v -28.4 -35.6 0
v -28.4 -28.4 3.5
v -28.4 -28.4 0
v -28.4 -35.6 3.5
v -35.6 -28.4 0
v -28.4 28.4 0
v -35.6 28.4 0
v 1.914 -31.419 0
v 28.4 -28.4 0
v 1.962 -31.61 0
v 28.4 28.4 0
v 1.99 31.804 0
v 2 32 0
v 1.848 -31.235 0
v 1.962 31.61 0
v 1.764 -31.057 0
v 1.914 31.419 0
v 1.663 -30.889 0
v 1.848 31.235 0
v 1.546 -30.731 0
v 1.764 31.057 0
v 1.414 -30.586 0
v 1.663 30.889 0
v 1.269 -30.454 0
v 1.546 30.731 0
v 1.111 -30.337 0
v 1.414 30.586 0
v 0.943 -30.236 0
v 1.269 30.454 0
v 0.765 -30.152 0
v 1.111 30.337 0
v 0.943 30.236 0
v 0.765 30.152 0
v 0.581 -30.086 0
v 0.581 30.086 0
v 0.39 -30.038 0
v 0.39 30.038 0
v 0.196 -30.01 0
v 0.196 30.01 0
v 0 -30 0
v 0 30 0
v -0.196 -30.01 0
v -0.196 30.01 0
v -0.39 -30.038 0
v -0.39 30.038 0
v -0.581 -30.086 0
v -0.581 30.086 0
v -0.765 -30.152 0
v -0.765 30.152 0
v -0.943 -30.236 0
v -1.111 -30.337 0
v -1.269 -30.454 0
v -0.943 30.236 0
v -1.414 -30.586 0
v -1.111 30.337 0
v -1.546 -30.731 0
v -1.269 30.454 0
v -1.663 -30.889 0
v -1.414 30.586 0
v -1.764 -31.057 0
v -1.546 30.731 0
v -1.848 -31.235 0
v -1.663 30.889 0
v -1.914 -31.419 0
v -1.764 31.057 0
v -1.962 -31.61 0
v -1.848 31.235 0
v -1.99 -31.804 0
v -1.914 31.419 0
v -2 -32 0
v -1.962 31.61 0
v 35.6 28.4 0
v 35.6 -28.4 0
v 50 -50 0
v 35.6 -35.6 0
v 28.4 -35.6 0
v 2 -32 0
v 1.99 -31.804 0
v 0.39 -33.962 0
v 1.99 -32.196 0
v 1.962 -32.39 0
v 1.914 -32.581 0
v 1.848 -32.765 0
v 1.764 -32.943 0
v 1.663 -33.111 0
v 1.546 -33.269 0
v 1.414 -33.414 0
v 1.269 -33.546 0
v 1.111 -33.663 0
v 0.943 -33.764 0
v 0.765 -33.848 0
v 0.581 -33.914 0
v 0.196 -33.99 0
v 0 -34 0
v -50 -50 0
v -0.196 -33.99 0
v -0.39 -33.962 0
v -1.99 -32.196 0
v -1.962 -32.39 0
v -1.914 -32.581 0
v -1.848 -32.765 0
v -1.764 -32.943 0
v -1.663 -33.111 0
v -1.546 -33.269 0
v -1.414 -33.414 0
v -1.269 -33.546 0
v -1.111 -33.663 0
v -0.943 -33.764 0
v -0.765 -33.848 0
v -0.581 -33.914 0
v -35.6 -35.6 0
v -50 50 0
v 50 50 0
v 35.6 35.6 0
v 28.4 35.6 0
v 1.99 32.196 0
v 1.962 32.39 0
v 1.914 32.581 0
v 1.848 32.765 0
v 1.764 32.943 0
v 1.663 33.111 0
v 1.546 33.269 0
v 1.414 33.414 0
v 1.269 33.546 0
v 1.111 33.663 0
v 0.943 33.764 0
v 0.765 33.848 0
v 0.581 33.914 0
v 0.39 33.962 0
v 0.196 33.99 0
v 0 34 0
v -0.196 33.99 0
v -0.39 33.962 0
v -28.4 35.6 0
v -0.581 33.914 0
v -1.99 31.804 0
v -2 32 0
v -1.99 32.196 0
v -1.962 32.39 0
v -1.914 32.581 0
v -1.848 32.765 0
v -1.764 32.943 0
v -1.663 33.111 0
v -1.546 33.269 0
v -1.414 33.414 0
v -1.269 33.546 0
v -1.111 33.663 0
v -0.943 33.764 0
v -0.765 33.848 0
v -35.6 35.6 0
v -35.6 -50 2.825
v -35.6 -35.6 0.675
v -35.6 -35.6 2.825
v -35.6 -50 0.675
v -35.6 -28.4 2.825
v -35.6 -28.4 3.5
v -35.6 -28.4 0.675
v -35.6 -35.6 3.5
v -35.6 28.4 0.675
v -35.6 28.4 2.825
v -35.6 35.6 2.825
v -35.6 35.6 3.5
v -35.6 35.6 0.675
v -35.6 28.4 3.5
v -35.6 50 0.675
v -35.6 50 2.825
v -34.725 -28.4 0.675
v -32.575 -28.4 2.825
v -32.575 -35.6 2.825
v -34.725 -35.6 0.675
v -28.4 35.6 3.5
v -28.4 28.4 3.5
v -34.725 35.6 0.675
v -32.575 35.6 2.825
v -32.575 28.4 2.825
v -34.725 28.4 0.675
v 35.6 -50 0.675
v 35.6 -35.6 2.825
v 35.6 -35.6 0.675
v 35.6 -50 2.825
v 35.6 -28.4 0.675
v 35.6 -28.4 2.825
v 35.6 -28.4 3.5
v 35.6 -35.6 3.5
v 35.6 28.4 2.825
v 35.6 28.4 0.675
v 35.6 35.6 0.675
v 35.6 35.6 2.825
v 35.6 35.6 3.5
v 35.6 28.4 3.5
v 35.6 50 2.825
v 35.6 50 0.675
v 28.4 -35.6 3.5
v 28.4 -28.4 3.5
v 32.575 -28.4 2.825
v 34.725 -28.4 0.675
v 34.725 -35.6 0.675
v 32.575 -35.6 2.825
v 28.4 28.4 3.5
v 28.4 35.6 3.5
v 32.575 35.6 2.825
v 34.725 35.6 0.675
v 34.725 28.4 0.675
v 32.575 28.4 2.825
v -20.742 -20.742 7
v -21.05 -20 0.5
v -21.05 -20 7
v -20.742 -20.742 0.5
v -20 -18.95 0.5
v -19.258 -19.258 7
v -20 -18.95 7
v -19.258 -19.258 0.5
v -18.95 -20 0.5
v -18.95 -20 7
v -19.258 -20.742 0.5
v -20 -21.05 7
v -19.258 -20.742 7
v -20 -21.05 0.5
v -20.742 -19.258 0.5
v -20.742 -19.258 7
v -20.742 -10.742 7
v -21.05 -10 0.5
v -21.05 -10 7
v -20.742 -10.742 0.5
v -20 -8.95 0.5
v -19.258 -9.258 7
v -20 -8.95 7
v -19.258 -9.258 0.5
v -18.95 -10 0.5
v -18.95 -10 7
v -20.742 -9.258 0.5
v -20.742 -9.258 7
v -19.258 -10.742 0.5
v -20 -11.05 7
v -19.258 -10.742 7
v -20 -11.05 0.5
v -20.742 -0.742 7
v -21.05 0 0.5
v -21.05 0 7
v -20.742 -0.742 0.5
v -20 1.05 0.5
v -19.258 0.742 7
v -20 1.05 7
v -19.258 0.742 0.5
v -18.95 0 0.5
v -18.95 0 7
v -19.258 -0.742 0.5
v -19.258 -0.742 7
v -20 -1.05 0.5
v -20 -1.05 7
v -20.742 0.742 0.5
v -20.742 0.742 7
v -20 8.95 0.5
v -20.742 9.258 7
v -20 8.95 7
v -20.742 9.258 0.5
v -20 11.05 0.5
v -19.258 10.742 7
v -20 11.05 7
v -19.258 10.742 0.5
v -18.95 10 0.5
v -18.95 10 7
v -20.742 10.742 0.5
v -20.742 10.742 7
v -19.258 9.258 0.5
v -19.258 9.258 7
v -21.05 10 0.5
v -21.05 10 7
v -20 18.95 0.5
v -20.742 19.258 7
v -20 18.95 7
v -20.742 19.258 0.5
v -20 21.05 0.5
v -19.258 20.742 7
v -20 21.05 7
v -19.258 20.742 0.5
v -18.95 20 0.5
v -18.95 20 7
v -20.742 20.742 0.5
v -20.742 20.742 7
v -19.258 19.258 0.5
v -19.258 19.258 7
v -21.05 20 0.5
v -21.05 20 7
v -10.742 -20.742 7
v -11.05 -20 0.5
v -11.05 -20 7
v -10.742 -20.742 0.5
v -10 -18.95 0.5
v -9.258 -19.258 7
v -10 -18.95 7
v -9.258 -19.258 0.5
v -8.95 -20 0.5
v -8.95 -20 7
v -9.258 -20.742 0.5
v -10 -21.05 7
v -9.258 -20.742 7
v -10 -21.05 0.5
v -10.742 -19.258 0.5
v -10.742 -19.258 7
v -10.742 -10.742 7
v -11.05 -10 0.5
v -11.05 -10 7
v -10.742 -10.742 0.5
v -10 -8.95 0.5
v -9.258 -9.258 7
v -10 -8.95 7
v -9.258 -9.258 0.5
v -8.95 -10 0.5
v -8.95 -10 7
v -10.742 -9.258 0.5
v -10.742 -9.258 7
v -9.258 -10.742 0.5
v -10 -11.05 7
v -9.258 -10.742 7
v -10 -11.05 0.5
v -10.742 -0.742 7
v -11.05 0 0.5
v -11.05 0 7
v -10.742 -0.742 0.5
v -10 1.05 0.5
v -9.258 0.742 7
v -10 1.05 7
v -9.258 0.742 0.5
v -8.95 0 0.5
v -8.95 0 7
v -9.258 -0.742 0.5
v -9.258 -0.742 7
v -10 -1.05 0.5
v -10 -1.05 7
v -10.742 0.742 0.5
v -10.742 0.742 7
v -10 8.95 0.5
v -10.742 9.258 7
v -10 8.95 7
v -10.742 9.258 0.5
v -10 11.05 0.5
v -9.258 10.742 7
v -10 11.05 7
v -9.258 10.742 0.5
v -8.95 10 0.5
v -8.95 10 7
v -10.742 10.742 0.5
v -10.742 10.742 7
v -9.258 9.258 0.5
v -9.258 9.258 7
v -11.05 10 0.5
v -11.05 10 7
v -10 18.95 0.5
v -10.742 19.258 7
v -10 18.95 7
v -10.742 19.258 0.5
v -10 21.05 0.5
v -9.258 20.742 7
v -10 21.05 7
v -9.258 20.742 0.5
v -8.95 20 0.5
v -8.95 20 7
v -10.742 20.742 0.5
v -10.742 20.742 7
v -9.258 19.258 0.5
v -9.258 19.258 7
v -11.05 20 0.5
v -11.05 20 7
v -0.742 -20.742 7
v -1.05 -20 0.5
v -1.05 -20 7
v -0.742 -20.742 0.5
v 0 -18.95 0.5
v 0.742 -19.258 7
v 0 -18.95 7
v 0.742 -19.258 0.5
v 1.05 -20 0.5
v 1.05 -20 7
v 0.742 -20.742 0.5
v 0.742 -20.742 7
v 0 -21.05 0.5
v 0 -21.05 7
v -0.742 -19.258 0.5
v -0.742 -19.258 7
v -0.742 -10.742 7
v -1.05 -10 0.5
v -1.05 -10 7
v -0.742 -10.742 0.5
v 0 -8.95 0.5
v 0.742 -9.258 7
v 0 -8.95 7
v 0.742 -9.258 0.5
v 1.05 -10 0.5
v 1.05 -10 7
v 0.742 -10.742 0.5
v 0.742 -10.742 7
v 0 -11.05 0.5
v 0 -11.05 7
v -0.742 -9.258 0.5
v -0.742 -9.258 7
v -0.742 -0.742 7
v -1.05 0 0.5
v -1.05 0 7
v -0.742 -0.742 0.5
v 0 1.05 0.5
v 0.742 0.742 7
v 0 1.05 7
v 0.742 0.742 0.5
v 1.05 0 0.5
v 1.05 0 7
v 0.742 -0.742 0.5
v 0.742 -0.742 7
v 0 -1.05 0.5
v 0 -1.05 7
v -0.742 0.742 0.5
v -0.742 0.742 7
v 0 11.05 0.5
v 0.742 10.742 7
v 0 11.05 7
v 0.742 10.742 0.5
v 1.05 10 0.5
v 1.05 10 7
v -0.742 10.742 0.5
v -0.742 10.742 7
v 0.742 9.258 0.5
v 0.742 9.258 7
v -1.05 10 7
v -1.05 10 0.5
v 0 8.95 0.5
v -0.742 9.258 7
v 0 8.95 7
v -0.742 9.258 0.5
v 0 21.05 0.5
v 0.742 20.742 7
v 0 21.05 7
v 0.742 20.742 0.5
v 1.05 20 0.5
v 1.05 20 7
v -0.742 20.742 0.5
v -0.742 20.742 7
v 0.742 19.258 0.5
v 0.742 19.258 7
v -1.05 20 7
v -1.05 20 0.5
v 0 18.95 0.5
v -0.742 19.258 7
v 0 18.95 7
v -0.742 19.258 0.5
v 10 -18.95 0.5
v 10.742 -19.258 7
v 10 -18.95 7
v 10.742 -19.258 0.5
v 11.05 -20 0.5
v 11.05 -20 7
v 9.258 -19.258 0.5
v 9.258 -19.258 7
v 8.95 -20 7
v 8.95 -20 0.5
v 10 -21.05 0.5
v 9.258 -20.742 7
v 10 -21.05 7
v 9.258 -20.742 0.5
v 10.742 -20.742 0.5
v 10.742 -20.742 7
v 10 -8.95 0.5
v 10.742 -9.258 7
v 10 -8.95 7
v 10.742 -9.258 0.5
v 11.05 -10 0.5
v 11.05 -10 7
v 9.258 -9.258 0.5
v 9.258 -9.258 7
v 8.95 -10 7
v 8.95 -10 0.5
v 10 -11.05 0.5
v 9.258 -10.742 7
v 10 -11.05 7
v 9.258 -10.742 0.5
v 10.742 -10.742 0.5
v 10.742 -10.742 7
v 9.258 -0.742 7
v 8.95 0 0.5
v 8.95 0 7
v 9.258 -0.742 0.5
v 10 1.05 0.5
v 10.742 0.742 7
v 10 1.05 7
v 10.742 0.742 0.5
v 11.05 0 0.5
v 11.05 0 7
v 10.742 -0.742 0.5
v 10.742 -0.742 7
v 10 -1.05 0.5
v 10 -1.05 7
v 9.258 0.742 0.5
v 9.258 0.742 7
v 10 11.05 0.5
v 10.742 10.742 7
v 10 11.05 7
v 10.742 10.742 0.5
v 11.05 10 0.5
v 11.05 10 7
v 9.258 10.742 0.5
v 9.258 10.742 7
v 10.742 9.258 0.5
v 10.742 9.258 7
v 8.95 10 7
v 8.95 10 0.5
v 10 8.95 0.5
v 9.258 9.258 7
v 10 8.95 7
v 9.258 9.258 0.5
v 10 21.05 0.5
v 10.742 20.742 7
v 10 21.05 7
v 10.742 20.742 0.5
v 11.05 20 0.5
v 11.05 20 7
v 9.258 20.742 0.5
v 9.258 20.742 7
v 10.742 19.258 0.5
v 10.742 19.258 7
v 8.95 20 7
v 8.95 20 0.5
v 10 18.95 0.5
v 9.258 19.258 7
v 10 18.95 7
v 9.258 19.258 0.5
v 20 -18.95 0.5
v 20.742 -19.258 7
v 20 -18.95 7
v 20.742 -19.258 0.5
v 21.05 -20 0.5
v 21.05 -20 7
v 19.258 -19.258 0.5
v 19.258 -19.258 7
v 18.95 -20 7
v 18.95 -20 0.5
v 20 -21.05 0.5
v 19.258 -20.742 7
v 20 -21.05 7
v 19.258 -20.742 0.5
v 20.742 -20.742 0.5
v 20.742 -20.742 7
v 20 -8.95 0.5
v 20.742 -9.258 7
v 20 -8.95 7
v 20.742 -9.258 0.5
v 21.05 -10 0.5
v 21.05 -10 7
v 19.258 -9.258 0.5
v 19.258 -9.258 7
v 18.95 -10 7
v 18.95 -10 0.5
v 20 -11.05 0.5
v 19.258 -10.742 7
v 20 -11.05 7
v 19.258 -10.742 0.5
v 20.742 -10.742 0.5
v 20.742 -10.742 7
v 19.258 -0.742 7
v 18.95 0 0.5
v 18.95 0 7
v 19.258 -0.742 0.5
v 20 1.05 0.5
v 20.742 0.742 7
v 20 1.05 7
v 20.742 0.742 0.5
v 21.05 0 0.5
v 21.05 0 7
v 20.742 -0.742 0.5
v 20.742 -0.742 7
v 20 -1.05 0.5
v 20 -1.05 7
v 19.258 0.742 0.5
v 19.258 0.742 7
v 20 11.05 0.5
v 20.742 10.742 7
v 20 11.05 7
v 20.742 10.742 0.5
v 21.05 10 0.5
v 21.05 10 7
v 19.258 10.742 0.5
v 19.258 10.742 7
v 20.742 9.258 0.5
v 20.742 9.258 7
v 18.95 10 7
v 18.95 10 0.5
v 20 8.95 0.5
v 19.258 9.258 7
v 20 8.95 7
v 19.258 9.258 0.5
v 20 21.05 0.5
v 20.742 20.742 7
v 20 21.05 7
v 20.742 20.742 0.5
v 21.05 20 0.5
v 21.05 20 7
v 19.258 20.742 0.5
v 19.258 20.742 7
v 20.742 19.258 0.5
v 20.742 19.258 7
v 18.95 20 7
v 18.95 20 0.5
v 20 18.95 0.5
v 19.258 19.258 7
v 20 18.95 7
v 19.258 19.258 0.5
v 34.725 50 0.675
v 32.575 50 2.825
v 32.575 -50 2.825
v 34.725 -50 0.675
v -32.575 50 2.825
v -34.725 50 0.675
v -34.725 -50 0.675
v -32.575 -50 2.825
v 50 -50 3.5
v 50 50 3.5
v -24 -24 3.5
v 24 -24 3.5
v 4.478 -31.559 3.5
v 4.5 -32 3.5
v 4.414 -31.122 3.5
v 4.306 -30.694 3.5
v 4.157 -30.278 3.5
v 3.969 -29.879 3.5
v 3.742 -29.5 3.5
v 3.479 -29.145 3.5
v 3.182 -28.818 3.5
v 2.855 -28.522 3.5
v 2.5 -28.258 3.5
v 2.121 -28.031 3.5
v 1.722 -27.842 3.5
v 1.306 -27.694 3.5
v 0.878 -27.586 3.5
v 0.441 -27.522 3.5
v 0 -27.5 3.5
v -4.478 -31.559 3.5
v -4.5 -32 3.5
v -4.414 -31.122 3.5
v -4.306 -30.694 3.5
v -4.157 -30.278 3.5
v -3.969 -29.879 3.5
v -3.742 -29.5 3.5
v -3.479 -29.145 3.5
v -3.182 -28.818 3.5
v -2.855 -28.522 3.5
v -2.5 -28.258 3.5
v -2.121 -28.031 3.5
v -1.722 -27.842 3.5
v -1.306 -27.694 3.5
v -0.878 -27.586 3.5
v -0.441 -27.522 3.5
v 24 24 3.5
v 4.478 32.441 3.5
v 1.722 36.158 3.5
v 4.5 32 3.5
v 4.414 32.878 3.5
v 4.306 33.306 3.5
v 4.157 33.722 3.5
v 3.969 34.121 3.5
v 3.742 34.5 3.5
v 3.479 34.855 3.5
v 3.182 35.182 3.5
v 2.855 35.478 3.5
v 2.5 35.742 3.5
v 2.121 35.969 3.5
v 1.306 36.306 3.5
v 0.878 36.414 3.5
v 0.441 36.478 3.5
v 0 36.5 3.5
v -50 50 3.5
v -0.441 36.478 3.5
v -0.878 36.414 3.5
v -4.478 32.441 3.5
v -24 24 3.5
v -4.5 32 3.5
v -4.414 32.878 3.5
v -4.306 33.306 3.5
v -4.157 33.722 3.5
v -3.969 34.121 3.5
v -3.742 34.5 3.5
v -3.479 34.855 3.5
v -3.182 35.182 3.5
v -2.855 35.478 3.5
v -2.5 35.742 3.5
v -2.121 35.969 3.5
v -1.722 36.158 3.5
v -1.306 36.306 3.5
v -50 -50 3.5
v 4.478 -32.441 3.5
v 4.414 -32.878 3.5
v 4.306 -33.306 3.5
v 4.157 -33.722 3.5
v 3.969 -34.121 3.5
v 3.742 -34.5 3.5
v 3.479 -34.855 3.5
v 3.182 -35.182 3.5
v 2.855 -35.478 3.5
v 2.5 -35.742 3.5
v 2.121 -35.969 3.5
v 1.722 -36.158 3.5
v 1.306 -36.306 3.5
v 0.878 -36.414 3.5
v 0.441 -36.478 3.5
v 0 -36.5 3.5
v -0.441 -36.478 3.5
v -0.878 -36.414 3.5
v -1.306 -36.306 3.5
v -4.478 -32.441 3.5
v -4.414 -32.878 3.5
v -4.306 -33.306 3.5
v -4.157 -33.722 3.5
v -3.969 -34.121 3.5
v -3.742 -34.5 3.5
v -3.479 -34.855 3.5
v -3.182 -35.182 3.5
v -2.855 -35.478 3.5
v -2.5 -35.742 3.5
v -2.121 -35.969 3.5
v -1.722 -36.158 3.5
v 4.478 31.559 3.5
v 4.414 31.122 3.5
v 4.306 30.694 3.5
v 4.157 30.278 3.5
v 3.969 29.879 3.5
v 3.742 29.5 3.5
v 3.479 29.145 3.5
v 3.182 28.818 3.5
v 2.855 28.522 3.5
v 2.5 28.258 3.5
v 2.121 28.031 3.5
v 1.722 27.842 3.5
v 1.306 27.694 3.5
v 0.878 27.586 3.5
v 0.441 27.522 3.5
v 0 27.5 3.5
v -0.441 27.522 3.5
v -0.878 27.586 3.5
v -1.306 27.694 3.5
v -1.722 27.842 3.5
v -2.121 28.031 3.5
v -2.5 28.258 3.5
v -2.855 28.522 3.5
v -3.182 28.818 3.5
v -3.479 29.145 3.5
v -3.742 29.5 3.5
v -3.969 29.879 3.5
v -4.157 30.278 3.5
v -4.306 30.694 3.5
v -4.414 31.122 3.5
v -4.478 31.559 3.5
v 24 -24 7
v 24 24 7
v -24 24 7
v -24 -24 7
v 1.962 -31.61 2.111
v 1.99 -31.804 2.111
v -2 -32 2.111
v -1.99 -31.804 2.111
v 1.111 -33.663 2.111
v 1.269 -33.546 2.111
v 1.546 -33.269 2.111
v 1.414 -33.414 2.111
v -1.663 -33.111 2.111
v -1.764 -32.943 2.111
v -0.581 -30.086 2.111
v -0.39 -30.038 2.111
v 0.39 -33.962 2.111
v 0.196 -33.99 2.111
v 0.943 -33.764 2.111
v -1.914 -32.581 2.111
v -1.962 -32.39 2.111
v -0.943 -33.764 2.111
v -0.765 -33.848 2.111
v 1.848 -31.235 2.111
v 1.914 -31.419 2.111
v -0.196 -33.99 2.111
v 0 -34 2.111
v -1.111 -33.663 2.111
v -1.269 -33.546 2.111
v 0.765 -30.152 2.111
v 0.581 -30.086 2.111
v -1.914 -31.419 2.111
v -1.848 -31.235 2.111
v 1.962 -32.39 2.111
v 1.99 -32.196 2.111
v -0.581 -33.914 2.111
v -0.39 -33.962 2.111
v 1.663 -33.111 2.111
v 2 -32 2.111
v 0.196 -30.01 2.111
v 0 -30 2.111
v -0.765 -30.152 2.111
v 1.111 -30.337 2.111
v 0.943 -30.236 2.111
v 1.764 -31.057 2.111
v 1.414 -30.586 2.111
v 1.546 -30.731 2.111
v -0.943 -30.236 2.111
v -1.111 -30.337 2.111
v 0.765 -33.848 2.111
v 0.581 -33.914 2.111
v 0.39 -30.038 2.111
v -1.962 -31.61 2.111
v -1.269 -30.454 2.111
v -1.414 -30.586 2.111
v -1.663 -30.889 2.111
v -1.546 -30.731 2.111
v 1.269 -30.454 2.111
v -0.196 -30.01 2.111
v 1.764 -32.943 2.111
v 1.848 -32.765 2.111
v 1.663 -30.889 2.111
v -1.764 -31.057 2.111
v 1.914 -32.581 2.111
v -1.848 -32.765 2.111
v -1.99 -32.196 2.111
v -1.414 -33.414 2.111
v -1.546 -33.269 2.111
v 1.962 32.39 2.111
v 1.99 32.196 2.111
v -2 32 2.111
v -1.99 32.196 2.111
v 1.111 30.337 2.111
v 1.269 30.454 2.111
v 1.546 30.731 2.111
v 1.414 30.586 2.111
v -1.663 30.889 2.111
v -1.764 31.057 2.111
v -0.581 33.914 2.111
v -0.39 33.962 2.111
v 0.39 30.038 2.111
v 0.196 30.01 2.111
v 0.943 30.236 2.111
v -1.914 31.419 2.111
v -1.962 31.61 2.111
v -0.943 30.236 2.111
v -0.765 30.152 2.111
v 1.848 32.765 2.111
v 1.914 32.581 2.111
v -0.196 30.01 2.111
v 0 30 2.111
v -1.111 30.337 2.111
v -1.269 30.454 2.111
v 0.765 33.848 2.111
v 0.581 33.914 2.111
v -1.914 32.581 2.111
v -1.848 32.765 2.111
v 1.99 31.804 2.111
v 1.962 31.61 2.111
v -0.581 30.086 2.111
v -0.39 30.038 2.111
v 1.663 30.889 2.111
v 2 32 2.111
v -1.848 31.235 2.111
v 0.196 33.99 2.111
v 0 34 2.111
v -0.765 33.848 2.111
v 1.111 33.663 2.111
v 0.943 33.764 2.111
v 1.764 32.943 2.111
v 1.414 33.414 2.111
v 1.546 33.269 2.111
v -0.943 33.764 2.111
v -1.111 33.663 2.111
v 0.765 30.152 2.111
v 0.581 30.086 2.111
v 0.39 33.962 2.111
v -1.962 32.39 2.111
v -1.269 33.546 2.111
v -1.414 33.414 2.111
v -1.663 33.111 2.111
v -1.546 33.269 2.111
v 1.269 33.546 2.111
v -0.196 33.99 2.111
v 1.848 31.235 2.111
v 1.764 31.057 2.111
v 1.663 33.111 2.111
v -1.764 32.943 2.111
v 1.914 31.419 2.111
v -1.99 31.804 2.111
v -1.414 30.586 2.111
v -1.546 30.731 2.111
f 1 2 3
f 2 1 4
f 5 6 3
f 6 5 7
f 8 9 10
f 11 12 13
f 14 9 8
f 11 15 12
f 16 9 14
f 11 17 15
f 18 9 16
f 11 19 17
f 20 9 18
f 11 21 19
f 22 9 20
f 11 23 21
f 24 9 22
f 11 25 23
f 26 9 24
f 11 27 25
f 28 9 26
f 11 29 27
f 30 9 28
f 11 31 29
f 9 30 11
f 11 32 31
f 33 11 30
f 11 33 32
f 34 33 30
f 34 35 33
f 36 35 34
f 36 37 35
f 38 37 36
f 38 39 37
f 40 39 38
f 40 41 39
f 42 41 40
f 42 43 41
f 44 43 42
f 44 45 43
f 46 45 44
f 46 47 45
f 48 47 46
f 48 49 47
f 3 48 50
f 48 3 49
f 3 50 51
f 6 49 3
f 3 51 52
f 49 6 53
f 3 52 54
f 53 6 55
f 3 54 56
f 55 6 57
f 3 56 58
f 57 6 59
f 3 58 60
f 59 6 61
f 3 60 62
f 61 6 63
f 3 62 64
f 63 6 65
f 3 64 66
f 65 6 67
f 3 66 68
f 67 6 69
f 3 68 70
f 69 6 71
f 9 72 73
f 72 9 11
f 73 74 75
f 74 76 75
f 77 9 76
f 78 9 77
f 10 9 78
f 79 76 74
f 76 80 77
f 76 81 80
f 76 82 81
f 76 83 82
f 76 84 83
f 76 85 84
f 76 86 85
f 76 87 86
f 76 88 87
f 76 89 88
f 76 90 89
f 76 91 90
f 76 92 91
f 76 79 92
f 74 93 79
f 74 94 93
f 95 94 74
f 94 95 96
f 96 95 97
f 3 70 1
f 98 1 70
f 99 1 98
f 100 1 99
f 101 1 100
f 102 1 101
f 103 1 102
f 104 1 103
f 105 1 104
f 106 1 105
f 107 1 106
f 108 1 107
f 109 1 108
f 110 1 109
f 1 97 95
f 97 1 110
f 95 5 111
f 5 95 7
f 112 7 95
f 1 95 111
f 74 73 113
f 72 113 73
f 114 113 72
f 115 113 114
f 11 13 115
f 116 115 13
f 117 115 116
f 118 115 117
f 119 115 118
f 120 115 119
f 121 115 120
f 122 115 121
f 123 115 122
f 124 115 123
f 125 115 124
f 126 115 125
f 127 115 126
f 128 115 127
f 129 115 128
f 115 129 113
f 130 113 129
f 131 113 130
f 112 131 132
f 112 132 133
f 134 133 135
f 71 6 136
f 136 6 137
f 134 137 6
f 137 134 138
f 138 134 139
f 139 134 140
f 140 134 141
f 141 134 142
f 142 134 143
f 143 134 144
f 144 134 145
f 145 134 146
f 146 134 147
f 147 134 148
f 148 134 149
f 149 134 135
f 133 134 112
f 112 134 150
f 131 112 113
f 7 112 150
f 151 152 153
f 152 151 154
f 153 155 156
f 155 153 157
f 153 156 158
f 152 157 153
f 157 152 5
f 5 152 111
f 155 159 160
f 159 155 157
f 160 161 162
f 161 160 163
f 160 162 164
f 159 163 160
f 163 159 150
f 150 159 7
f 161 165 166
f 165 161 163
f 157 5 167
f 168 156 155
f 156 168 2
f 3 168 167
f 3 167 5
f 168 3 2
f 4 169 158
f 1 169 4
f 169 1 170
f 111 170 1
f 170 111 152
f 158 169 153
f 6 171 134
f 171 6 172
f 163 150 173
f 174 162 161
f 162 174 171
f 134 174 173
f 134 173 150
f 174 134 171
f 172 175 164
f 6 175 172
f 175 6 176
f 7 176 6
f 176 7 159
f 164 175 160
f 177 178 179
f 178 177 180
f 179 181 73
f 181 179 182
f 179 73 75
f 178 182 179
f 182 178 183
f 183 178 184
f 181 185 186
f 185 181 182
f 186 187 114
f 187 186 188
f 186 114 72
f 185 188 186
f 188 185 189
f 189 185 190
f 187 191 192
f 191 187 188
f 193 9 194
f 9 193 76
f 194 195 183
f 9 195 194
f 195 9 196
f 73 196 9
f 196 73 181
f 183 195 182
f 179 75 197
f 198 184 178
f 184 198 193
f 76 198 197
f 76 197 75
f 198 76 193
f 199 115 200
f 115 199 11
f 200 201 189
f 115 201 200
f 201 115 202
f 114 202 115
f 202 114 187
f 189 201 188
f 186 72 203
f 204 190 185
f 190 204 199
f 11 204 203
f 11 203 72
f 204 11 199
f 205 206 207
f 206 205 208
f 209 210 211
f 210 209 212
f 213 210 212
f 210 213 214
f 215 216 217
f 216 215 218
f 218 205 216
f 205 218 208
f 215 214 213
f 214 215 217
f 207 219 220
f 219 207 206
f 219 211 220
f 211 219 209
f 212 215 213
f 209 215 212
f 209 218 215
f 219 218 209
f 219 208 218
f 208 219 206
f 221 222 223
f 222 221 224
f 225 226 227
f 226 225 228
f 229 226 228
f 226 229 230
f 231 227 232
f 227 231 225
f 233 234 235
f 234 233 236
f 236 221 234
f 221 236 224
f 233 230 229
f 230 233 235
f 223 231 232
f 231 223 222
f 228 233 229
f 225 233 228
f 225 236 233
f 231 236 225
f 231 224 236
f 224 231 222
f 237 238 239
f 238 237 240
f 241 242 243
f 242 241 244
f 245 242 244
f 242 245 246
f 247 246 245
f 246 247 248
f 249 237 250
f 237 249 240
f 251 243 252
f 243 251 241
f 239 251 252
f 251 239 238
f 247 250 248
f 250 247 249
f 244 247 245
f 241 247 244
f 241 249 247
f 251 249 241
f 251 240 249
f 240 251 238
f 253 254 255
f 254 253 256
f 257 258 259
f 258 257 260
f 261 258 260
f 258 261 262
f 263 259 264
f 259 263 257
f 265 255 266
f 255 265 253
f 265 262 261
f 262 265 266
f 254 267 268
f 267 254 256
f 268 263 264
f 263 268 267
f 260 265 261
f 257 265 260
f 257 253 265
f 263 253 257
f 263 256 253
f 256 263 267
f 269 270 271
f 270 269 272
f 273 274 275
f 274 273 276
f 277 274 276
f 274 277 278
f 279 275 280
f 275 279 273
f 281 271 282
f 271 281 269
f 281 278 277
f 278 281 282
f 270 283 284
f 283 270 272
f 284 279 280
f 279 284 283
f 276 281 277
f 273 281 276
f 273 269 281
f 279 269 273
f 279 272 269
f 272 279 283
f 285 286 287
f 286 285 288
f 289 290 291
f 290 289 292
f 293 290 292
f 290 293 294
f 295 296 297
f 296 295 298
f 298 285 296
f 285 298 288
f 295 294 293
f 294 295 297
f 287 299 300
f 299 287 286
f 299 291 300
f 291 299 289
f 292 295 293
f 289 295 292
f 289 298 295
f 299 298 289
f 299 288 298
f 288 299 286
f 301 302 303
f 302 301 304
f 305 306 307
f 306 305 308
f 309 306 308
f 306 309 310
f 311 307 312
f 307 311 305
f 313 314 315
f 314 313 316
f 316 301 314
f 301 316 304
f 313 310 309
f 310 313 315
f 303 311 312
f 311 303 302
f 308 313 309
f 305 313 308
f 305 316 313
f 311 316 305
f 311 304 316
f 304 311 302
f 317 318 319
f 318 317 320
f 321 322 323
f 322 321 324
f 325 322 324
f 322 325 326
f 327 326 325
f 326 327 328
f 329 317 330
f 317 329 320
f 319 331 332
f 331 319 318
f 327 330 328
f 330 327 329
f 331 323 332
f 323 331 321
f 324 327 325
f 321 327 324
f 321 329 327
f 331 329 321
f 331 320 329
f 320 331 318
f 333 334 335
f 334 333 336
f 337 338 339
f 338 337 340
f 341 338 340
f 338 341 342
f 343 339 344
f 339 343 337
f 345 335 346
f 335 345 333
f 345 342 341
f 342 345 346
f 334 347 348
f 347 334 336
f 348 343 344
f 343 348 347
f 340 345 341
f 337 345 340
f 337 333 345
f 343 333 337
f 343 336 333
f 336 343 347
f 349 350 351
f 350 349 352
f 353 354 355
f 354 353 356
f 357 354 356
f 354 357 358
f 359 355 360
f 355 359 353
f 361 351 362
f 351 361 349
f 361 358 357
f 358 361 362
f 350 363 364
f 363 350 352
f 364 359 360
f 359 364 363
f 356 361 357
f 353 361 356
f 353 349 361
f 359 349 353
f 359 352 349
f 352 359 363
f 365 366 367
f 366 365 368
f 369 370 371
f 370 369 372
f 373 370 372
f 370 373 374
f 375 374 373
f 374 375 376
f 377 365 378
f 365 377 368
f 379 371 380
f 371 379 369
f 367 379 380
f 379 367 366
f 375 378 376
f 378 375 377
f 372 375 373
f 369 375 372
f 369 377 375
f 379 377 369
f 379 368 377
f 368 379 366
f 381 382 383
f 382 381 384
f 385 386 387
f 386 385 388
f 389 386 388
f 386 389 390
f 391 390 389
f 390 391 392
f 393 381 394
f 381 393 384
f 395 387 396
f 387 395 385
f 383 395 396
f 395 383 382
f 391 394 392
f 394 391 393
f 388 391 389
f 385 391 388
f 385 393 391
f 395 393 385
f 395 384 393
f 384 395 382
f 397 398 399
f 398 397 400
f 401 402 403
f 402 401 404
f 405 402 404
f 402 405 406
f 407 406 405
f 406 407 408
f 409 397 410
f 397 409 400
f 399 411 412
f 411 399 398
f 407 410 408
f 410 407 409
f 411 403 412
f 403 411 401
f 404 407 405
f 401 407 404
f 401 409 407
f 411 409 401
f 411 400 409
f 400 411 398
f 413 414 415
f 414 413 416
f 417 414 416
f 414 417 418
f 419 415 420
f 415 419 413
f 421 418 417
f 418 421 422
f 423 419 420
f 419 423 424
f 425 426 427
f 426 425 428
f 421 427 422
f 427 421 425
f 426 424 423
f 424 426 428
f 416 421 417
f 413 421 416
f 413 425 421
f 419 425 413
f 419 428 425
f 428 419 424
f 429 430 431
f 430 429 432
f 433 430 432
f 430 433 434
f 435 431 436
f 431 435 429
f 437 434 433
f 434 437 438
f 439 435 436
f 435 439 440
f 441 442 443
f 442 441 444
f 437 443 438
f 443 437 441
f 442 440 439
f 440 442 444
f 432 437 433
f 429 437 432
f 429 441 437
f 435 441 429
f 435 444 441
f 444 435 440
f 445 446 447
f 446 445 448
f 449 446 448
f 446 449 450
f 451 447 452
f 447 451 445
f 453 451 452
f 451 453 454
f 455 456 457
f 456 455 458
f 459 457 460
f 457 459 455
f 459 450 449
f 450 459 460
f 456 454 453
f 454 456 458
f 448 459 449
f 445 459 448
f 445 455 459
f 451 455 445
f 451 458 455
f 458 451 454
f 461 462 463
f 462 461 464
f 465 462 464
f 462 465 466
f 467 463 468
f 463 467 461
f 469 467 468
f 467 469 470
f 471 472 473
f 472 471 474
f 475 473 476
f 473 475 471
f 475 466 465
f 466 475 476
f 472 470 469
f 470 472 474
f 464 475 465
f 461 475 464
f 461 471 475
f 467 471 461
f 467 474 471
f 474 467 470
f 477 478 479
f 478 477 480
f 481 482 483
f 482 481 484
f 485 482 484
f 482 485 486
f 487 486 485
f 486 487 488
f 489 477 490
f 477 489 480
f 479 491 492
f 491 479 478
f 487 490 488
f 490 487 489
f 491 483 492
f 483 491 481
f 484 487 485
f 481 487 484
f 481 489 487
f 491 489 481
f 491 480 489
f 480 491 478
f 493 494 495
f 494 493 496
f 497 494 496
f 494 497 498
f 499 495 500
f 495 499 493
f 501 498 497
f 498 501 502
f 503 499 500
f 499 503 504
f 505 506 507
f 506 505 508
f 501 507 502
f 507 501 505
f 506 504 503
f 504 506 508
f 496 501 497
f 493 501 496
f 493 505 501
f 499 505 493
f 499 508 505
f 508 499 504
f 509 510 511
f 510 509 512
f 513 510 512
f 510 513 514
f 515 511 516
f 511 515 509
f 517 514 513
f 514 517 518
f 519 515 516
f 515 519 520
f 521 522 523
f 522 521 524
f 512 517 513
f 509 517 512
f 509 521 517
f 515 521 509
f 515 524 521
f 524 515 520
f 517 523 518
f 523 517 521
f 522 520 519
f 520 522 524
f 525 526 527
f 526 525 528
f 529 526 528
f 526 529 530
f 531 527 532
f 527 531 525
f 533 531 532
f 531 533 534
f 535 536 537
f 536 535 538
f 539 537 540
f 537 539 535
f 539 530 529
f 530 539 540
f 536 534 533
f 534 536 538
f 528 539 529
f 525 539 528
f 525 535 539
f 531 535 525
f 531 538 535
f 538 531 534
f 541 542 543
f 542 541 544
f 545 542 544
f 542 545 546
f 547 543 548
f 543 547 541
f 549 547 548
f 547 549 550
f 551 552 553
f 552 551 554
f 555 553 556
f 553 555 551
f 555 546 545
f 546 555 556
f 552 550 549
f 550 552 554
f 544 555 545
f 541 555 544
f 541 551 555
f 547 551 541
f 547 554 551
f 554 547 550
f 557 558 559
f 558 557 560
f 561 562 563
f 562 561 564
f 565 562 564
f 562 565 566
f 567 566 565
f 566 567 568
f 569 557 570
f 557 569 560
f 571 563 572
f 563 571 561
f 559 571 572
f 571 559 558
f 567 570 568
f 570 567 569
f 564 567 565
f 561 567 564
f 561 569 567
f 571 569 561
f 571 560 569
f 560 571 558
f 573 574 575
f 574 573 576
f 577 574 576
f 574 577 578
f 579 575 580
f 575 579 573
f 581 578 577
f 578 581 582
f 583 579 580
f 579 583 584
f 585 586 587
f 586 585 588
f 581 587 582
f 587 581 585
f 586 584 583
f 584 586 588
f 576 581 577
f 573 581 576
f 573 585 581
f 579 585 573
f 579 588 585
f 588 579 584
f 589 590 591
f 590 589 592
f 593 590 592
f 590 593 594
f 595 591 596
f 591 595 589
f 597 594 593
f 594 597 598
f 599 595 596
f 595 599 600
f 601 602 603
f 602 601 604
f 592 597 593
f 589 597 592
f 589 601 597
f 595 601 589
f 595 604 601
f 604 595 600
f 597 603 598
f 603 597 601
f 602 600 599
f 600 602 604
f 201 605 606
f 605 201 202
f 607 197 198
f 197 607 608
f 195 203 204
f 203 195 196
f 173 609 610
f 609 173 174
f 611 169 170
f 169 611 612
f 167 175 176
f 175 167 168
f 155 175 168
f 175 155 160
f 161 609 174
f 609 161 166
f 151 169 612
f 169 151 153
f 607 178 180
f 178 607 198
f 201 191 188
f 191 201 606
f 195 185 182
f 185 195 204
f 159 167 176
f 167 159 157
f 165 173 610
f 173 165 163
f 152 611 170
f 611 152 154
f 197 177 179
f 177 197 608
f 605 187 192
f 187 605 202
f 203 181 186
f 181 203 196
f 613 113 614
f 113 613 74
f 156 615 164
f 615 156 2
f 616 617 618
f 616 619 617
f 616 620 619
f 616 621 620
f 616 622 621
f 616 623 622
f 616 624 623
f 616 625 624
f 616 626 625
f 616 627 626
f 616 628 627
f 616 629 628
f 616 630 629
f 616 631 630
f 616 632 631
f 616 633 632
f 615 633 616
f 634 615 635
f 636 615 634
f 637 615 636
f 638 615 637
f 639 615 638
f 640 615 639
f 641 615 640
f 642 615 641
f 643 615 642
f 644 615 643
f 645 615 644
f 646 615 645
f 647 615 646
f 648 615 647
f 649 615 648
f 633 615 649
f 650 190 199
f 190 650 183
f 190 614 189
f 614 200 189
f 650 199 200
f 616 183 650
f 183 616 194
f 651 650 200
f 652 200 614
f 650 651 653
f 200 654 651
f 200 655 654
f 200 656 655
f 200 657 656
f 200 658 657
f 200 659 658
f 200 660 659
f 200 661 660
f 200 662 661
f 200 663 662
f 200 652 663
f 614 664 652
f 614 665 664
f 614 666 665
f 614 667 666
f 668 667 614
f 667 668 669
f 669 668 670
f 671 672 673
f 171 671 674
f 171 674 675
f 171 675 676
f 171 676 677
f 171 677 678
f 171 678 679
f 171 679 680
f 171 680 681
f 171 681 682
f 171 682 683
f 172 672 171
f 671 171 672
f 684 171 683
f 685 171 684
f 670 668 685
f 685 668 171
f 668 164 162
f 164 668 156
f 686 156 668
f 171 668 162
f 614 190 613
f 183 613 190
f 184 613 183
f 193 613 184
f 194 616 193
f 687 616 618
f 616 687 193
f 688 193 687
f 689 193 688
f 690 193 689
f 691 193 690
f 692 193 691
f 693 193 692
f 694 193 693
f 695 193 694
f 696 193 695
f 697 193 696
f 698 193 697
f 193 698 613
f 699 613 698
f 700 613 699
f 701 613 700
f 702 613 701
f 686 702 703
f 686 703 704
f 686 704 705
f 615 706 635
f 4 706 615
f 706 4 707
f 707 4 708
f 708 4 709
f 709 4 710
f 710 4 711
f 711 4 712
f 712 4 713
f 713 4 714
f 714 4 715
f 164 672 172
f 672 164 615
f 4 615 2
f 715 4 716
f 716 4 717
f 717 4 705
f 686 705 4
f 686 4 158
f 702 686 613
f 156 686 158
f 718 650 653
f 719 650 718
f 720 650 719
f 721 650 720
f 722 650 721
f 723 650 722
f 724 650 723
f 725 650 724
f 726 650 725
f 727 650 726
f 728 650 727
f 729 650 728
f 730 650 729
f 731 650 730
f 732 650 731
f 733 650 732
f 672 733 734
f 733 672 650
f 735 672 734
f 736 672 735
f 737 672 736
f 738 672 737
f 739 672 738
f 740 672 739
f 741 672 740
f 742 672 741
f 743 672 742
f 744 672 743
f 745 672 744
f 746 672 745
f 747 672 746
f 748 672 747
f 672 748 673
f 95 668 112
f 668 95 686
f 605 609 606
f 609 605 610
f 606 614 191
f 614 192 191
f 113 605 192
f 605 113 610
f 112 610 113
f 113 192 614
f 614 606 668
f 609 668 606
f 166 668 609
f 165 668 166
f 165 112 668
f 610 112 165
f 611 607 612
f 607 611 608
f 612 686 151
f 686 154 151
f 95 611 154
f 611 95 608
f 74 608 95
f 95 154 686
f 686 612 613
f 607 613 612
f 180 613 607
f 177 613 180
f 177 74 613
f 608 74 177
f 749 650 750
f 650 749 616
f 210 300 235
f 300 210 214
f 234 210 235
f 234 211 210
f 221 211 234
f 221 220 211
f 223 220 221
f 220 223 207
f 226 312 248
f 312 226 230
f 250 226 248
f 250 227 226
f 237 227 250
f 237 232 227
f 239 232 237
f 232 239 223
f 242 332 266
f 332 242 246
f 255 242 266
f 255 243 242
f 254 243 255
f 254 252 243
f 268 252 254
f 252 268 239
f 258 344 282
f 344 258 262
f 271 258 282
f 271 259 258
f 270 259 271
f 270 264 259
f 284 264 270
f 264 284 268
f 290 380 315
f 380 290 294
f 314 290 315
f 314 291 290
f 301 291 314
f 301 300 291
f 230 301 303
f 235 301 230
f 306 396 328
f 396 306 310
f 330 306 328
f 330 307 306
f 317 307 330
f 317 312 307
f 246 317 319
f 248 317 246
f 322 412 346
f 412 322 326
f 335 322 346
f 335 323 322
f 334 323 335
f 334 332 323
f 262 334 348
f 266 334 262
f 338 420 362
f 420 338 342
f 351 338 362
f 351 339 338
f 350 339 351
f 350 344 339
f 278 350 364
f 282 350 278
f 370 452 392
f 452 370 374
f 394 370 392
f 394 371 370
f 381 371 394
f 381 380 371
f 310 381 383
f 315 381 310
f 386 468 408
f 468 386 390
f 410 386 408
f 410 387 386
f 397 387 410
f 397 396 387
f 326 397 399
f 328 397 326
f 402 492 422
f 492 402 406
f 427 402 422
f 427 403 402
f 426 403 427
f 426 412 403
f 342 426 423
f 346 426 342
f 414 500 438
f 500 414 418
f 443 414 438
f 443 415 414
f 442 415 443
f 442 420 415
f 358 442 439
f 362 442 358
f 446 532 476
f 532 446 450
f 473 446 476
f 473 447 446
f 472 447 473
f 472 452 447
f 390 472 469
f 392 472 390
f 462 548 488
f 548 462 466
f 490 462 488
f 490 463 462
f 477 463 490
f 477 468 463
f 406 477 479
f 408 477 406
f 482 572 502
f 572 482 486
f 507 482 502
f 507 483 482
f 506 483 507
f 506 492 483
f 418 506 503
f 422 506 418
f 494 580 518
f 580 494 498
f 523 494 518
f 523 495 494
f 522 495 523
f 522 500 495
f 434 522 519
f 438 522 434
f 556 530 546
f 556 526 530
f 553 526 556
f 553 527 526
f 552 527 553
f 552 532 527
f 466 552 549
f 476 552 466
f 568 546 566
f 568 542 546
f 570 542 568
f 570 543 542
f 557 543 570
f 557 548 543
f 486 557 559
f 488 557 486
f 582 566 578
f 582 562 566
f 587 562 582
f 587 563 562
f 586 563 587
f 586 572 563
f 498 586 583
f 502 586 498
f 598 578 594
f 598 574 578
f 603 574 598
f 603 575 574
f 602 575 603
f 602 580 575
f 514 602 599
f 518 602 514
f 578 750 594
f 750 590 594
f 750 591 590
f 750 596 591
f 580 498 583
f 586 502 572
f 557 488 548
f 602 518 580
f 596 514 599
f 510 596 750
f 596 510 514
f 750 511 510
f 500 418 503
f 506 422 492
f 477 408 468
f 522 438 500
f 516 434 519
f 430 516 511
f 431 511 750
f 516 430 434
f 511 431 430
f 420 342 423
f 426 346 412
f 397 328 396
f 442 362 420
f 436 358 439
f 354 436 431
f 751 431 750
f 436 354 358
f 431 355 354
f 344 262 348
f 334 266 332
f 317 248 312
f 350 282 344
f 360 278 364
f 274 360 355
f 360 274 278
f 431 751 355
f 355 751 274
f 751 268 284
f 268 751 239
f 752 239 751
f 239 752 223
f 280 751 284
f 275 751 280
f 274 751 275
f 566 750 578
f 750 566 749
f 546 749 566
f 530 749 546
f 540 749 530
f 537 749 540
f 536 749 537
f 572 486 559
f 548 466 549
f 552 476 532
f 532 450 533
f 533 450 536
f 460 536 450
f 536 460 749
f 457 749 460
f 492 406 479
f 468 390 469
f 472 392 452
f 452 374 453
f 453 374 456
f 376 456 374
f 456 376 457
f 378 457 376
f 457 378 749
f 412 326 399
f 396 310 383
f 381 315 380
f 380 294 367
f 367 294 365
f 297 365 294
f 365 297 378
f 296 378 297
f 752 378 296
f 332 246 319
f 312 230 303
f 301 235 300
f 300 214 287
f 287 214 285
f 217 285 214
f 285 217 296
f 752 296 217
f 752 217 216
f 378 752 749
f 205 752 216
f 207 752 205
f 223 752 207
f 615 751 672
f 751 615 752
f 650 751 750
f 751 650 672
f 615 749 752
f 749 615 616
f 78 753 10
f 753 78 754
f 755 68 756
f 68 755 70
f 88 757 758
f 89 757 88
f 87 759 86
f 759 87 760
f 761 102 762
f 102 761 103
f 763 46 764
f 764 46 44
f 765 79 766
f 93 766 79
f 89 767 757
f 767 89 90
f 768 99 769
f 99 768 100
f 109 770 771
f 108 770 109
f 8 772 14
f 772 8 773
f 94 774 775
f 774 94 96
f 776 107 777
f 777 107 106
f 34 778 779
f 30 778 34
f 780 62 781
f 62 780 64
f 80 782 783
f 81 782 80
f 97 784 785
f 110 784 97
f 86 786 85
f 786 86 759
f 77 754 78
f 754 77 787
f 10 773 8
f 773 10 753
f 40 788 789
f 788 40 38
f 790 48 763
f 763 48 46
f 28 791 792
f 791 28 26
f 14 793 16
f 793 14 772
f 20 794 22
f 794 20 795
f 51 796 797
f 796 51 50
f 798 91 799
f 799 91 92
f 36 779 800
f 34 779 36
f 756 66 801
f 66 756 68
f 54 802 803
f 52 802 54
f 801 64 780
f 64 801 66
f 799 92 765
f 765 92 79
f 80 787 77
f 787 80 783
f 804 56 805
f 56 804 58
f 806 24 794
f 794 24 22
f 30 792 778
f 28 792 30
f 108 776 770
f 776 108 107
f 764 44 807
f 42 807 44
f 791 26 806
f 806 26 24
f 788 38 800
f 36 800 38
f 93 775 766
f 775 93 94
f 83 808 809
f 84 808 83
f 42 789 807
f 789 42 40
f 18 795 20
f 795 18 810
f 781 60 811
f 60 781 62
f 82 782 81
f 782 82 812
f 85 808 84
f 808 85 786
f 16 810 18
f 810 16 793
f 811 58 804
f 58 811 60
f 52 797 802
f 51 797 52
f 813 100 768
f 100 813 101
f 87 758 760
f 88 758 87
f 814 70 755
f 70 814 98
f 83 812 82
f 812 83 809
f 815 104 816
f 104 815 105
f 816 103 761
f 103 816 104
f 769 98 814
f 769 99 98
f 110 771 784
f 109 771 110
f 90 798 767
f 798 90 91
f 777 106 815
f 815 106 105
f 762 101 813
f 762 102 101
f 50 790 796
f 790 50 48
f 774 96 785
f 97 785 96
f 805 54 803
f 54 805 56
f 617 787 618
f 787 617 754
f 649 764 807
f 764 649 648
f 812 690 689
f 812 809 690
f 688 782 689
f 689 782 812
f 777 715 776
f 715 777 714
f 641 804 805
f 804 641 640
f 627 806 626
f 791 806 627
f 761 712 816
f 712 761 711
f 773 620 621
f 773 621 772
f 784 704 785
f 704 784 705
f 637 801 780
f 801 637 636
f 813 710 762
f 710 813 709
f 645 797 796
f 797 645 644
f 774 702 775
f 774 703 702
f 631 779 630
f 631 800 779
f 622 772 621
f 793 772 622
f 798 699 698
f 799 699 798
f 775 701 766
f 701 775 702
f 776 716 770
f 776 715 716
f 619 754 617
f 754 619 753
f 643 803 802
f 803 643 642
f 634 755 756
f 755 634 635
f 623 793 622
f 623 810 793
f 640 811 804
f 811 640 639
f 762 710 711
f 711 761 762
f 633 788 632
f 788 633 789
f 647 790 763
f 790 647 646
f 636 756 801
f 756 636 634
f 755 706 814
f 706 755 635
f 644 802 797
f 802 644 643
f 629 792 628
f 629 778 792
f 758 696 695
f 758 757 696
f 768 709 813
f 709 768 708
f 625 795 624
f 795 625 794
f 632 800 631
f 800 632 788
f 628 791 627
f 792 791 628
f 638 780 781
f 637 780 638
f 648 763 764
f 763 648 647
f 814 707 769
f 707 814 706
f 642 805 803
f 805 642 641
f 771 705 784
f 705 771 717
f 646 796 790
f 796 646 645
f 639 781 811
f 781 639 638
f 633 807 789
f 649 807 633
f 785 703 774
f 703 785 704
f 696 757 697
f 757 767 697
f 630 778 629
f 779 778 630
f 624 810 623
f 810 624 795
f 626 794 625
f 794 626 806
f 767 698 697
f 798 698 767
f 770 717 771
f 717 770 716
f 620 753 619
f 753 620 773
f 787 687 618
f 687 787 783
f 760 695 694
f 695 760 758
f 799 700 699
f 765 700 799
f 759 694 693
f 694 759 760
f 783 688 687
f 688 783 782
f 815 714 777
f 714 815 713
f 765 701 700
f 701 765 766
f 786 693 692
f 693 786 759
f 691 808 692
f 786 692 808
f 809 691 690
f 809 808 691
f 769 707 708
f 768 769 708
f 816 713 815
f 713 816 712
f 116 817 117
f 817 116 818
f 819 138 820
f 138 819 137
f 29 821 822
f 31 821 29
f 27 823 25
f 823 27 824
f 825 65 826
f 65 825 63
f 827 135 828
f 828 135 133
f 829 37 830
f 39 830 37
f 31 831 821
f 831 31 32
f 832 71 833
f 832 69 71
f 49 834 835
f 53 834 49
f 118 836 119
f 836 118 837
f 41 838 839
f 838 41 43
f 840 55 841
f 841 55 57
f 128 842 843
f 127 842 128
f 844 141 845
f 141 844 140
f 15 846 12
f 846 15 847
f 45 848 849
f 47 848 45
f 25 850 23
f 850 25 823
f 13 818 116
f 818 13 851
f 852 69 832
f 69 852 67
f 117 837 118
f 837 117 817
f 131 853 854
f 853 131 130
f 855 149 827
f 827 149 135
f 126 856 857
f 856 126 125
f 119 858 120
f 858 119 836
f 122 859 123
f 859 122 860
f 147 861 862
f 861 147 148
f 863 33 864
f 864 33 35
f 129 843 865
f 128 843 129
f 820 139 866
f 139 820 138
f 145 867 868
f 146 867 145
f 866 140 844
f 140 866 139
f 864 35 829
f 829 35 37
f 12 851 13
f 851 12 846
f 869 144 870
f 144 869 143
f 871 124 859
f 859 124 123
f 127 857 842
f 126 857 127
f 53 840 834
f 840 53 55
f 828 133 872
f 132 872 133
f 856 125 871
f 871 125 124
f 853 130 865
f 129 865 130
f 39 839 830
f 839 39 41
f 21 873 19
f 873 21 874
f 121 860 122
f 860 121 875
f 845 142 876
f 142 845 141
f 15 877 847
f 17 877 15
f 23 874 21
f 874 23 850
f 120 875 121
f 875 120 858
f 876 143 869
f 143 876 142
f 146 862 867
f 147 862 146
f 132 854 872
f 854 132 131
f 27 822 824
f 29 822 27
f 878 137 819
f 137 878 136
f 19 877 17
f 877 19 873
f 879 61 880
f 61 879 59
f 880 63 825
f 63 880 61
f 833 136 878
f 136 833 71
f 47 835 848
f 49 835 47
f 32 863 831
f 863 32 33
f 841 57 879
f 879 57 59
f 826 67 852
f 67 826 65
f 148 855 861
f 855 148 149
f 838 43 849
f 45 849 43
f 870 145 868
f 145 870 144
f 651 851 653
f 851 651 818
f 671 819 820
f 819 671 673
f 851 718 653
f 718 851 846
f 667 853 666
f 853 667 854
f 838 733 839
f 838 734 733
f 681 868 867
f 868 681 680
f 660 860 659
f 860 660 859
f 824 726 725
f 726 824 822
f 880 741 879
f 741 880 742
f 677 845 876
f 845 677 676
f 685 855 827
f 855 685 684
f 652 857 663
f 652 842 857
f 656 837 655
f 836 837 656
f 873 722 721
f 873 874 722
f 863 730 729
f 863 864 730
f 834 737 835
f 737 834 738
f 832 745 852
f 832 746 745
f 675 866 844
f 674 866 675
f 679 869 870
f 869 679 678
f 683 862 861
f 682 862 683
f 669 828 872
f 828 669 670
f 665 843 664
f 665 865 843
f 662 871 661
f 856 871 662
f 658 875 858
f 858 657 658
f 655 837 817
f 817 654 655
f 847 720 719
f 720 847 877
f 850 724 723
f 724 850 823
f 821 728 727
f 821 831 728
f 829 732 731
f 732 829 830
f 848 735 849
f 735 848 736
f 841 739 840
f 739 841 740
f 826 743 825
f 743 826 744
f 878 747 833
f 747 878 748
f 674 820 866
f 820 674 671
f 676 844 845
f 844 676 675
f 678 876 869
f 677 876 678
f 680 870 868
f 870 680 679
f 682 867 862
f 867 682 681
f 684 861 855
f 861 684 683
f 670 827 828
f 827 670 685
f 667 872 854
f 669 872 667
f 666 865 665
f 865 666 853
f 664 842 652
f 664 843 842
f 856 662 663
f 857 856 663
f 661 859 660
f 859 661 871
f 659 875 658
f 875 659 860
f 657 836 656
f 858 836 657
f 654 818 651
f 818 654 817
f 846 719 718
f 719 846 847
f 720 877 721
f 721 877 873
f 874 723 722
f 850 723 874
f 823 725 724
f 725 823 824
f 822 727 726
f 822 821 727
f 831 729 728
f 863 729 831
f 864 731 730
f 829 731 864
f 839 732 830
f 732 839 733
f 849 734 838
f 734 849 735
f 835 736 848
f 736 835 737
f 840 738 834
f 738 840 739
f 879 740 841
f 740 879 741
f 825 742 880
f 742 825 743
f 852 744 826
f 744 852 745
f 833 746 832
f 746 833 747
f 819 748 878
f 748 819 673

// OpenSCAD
W=64;
W2=100;
H=90;
T=1.5;
B=4;
Q=7;
H1=7;
HR=12;

base();

module base() {
    difference() {
        union() {
            
    difference() {
        cube_center([W2,W2,H1/2]);
        
        for(s=[-1,1])
        for(t=[-1,1])
        translate([s*W/2,t*W/2,0]) {
            cube_center([H1+0.2,H1+0.2,H1+0.2]);
        }
        
        
        difference() {
            for(s=[-1,1])
            scale([s,1,1])
            translate([-W/2,0,0]) {
                
                translate([-H1/2-0.1,0,H1/2])
                scale([H1/2+0.2,W2*2,H1/2+0.2])
                rotate([-90,0,0])
                triangle();
            }
        
            translate([0,0,1.5*H1/4+0.2])
            cube_center([200,200,H1/4]);
            
            translate([0,0,0])
            cube_center([200,200,H1/8-0.2]);
        }
    }
    
        cube_center([W/2*1.5,W/2*1.5,H1]);
}
    
        for(x=[-20:10:20])
        for(y=[-20:10:20])
        translate([x,y,0.5])
        cylinder(d=2.1,h=30,$fn=8);
        
        for(s=[-1,1])
        for(t=[-1,1])
        translate([0,s*W/2,0]) {
            cylinder(d=4,h=30,$fn=64);
            translate([0,0,H1/2-5/2])
            cylinder(d1=0,d2=9,h=5/2,$fn=64);
        }
        
    }
}


module cube_center(dims,r=0) {
    if(r==0) {
        translate([-dims[0]/2, -dims[1]/2, 0])
        cube(dims);
    } else {
        
        minkowski() {
            translate([-dims[0]/2+r, -dims[1]/2+r, 0])
            cube([dims[0]-2*r,dims[1]-2*r,dims[2]]);
            cylinder(r=r,h=0.00001,$fn=32);
        }
    }
}

module triangle() {
    linear_extrude(height = 1, center = true, convexity = 10, twist = 0)
    polygon(points=[[0,0],[1,0],[0,1]]);
}
